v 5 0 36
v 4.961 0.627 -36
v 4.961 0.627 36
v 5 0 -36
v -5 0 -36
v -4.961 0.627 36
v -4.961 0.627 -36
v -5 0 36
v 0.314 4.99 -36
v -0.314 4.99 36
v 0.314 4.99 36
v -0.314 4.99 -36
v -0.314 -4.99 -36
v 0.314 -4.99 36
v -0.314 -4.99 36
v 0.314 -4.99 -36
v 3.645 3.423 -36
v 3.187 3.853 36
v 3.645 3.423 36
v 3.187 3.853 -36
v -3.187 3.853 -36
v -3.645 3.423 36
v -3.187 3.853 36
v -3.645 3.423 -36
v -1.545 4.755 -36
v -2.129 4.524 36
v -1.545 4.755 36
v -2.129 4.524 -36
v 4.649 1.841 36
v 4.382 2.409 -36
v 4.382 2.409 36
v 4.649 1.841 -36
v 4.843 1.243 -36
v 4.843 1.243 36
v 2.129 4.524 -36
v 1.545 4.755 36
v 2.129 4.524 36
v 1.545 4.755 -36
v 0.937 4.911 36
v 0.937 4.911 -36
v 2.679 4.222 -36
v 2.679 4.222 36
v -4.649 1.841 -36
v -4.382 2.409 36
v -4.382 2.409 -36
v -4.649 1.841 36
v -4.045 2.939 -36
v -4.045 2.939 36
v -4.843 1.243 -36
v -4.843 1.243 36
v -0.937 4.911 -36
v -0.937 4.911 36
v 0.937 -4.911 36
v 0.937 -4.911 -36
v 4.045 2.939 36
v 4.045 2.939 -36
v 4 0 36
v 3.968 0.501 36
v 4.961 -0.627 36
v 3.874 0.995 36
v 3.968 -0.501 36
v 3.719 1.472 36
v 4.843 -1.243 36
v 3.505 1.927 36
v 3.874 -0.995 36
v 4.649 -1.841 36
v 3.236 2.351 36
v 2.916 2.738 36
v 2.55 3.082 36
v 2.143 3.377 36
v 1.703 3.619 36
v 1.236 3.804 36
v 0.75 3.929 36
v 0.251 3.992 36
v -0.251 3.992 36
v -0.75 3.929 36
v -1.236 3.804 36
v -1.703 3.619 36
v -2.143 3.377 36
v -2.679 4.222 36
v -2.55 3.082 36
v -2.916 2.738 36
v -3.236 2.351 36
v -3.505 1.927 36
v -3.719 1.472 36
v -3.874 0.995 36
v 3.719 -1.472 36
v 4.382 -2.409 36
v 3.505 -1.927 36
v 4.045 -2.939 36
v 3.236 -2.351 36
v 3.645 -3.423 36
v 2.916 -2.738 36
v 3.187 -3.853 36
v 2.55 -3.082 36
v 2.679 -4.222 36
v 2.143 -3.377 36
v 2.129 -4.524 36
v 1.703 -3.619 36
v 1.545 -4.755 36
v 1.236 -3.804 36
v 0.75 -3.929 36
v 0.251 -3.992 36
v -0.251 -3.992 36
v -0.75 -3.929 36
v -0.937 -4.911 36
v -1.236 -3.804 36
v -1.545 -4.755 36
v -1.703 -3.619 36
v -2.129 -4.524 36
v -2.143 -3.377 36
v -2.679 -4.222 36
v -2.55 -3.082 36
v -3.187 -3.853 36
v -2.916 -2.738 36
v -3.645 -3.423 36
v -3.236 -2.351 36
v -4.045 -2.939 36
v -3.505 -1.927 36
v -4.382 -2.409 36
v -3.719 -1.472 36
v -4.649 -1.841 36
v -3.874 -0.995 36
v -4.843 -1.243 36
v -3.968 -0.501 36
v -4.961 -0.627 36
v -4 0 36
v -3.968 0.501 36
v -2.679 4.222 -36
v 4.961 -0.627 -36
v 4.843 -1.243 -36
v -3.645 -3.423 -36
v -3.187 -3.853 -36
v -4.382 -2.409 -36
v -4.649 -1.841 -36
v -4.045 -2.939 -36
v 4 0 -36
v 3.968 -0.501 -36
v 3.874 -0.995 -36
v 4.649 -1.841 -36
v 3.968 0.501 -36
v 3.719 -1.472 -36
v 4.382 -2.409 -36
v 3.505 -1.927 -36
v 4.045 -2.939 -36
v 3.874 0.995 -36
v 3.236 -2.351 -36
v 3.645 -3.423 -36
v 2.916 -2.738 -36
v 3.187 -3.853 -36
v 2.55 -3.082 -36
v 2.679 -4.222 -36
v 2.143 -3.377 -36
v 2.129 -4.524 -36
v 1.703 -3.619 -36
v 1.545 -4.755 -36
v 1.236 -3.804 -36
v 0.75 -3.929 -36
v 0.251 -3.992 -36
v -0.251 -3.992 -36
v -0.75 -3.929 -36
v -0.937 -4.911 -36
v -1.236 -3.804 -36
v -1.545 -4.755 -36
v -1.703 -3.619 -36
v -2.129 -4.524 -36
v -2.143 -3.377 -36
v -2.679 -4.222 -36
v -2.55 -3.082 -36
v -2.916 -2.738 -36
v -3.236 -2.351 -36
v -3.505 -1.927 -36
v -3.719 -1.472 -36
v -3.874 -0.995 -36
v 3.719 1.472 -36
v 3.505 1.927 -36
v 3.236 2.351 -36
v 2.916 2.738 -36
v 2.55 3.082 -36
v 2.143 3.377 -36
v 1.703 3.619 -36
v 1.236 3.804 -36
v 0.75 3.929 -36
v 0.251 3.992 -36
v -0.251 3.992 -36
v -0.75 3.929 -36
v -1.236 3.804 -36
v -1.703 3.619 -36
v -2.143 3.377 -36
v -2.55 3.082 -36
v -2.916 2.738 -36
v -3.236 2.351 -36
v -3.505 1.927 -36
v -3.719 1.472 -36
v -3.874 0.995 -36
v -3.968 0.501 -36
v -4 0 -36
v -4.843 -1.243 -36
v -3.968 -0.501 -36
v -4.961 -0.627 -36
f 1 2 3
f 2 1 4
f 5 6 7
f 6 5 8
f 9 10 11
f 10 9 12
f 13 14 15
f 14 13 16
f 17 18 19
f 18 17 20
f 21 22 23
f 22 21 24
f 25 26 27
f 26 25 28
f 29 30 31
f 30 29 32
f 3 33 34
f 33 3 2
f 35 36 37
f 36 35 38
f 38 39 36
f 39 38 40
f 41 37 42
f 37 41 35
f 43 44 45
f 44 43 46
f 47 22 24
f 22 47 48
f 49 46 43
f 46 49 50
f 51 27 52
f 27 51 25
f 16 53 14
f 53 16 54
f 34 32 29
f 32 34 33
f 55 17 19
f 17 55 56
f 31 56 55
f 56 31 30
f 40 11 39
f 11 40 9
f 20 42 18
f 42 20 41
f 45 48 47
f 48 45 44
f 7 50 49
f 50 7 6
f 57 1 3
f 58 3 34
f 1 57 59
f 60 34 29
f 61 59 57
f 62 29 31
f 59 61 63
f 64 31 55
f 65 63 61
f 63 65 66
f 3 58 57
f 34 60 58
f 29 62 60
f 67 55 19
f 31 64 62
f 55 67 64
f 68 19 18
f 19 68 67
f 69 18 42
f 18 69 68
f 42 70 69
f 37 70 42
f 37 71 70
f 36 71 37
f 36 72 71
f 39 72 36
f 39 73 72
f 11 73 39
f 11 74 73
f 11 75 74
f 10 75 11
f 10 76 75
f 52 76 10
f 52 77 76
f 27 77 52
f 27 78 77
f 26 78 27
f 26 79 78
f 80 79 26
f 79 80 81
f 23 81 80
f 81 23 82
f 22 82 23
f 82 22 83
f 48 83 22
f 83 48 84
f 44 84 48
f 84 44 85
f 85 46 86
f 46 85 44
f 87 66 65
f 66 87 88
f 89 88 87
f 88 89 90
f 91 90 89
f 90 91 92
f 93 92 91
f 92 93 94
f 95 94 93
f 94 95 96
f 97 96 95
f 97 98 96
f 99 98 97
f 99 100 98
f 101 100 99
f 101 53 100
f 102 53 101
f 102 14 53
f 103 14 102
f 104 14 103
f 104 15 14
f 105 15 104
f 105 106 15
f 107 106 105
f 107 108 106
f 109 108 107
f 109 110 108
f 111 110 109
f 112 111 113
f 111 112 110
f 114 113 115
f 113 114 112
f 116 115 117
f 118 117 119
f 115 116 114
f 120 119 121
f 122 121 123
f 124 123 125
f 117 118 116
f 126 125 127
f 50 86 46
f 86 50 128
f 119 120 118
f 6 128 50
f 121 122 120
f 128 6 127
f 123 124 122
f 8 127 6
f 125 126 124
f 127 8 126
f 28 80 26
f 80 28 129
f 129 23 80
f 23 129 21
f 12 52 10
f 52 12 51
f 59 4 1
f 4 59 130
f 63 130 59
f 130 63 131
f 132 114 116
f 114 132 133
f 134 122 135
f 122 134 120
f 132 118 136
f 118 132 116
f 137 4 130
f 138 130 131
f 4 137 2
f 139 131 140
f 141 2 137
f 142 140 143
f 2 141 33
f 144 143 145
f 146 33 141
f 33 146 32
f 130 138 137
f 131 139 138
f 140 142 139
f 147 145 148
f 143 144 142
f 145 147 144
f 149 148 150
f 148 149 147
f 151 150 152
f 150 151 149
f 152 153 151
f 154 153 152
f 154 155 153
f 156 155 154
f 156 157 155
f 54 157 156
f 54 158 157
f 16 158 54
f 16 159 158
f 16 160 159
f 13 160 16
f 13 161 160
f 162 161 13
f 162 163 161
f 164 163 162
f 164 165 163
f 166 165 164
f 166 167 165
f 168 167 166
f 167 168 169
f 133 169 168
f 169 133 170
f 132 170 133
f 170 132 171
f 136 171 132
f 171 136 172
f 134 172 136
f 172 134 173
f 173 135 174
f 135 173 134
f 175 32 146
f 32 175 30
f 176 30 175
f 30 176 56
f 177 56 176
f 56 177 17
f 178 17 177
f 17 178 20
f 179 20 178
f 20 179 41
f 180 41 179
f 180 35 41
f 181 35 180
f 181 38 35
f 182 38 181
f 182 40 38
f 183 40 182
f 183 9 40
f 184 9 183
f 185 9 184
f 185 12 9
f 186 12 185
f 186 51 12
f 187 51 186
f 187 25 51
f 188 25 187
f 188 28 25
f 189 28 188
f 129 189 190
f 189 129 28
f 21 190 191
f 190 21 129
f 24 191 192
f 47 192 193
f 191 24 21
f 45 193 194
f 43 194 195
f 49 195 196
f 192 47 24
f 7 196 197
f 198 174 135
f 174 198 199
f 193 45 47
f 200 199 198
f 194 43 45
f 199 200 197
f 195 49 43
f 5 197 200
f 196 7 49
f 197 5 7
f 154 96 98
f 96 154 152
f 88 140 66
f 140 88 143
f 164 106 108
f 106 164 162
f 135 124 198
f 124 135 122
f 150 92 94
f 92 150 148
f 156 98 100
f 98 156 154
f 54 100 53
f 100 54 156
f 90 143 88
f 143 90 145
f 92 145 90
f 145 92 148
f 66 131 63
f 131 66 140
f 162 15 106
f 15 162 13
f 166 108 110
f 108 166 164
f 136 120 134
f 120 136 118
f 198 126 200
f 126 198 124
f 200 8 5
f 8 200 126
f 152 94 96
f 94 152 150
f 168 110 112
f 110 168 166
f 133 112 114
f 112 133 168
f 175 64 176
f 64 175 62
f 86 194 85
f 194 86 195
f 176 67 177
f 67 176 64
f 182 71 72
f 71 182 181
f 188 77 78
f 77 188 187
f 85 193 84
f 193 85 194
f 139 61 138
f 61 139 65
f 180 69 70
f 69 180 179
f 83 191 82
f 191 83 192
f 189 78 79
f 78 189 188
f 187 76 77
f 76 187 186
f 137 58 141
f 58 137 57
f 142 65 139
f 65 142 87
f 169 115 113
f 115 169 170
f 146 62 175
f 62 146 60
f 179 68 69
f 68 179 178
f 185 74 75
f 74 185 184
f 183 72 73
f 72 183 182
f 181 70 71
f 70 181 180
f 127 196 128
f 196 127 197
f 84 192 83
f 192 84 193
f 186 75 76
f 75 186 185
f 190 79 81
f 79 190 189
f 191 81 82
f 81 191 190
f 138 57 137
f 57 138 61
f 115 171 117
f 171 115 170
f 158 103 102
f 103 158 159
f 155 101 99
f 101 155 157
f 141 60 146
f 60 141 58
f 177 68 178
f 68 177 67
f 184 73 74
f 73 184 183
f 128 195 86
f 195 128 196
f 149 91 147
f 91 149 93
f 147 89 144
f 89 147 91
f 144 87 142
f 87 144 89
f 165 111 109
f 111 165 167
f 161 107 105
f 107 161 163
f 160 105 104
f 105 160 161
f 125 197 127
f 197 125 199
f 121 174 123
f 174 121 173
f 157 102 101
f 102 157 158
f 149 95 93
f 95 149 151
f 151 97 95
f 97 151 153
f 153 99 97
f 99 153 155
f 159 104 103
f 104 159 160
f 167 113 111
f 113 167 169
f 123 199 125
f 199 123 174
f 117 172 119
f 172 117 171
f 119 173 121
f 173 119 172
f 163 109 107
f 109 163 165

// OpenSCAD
$fn = 50;


difference() {
	union() {
		translate(v = [0, 0, -36.0000000000]) {
			cylinder(h = 72, r = 5.0000000000);
		}
	}
	union() {
		translate(v = [0, 0, -100.0000000000]) {
			cylinder(h = 200, r = 4);
		}
	}
}
